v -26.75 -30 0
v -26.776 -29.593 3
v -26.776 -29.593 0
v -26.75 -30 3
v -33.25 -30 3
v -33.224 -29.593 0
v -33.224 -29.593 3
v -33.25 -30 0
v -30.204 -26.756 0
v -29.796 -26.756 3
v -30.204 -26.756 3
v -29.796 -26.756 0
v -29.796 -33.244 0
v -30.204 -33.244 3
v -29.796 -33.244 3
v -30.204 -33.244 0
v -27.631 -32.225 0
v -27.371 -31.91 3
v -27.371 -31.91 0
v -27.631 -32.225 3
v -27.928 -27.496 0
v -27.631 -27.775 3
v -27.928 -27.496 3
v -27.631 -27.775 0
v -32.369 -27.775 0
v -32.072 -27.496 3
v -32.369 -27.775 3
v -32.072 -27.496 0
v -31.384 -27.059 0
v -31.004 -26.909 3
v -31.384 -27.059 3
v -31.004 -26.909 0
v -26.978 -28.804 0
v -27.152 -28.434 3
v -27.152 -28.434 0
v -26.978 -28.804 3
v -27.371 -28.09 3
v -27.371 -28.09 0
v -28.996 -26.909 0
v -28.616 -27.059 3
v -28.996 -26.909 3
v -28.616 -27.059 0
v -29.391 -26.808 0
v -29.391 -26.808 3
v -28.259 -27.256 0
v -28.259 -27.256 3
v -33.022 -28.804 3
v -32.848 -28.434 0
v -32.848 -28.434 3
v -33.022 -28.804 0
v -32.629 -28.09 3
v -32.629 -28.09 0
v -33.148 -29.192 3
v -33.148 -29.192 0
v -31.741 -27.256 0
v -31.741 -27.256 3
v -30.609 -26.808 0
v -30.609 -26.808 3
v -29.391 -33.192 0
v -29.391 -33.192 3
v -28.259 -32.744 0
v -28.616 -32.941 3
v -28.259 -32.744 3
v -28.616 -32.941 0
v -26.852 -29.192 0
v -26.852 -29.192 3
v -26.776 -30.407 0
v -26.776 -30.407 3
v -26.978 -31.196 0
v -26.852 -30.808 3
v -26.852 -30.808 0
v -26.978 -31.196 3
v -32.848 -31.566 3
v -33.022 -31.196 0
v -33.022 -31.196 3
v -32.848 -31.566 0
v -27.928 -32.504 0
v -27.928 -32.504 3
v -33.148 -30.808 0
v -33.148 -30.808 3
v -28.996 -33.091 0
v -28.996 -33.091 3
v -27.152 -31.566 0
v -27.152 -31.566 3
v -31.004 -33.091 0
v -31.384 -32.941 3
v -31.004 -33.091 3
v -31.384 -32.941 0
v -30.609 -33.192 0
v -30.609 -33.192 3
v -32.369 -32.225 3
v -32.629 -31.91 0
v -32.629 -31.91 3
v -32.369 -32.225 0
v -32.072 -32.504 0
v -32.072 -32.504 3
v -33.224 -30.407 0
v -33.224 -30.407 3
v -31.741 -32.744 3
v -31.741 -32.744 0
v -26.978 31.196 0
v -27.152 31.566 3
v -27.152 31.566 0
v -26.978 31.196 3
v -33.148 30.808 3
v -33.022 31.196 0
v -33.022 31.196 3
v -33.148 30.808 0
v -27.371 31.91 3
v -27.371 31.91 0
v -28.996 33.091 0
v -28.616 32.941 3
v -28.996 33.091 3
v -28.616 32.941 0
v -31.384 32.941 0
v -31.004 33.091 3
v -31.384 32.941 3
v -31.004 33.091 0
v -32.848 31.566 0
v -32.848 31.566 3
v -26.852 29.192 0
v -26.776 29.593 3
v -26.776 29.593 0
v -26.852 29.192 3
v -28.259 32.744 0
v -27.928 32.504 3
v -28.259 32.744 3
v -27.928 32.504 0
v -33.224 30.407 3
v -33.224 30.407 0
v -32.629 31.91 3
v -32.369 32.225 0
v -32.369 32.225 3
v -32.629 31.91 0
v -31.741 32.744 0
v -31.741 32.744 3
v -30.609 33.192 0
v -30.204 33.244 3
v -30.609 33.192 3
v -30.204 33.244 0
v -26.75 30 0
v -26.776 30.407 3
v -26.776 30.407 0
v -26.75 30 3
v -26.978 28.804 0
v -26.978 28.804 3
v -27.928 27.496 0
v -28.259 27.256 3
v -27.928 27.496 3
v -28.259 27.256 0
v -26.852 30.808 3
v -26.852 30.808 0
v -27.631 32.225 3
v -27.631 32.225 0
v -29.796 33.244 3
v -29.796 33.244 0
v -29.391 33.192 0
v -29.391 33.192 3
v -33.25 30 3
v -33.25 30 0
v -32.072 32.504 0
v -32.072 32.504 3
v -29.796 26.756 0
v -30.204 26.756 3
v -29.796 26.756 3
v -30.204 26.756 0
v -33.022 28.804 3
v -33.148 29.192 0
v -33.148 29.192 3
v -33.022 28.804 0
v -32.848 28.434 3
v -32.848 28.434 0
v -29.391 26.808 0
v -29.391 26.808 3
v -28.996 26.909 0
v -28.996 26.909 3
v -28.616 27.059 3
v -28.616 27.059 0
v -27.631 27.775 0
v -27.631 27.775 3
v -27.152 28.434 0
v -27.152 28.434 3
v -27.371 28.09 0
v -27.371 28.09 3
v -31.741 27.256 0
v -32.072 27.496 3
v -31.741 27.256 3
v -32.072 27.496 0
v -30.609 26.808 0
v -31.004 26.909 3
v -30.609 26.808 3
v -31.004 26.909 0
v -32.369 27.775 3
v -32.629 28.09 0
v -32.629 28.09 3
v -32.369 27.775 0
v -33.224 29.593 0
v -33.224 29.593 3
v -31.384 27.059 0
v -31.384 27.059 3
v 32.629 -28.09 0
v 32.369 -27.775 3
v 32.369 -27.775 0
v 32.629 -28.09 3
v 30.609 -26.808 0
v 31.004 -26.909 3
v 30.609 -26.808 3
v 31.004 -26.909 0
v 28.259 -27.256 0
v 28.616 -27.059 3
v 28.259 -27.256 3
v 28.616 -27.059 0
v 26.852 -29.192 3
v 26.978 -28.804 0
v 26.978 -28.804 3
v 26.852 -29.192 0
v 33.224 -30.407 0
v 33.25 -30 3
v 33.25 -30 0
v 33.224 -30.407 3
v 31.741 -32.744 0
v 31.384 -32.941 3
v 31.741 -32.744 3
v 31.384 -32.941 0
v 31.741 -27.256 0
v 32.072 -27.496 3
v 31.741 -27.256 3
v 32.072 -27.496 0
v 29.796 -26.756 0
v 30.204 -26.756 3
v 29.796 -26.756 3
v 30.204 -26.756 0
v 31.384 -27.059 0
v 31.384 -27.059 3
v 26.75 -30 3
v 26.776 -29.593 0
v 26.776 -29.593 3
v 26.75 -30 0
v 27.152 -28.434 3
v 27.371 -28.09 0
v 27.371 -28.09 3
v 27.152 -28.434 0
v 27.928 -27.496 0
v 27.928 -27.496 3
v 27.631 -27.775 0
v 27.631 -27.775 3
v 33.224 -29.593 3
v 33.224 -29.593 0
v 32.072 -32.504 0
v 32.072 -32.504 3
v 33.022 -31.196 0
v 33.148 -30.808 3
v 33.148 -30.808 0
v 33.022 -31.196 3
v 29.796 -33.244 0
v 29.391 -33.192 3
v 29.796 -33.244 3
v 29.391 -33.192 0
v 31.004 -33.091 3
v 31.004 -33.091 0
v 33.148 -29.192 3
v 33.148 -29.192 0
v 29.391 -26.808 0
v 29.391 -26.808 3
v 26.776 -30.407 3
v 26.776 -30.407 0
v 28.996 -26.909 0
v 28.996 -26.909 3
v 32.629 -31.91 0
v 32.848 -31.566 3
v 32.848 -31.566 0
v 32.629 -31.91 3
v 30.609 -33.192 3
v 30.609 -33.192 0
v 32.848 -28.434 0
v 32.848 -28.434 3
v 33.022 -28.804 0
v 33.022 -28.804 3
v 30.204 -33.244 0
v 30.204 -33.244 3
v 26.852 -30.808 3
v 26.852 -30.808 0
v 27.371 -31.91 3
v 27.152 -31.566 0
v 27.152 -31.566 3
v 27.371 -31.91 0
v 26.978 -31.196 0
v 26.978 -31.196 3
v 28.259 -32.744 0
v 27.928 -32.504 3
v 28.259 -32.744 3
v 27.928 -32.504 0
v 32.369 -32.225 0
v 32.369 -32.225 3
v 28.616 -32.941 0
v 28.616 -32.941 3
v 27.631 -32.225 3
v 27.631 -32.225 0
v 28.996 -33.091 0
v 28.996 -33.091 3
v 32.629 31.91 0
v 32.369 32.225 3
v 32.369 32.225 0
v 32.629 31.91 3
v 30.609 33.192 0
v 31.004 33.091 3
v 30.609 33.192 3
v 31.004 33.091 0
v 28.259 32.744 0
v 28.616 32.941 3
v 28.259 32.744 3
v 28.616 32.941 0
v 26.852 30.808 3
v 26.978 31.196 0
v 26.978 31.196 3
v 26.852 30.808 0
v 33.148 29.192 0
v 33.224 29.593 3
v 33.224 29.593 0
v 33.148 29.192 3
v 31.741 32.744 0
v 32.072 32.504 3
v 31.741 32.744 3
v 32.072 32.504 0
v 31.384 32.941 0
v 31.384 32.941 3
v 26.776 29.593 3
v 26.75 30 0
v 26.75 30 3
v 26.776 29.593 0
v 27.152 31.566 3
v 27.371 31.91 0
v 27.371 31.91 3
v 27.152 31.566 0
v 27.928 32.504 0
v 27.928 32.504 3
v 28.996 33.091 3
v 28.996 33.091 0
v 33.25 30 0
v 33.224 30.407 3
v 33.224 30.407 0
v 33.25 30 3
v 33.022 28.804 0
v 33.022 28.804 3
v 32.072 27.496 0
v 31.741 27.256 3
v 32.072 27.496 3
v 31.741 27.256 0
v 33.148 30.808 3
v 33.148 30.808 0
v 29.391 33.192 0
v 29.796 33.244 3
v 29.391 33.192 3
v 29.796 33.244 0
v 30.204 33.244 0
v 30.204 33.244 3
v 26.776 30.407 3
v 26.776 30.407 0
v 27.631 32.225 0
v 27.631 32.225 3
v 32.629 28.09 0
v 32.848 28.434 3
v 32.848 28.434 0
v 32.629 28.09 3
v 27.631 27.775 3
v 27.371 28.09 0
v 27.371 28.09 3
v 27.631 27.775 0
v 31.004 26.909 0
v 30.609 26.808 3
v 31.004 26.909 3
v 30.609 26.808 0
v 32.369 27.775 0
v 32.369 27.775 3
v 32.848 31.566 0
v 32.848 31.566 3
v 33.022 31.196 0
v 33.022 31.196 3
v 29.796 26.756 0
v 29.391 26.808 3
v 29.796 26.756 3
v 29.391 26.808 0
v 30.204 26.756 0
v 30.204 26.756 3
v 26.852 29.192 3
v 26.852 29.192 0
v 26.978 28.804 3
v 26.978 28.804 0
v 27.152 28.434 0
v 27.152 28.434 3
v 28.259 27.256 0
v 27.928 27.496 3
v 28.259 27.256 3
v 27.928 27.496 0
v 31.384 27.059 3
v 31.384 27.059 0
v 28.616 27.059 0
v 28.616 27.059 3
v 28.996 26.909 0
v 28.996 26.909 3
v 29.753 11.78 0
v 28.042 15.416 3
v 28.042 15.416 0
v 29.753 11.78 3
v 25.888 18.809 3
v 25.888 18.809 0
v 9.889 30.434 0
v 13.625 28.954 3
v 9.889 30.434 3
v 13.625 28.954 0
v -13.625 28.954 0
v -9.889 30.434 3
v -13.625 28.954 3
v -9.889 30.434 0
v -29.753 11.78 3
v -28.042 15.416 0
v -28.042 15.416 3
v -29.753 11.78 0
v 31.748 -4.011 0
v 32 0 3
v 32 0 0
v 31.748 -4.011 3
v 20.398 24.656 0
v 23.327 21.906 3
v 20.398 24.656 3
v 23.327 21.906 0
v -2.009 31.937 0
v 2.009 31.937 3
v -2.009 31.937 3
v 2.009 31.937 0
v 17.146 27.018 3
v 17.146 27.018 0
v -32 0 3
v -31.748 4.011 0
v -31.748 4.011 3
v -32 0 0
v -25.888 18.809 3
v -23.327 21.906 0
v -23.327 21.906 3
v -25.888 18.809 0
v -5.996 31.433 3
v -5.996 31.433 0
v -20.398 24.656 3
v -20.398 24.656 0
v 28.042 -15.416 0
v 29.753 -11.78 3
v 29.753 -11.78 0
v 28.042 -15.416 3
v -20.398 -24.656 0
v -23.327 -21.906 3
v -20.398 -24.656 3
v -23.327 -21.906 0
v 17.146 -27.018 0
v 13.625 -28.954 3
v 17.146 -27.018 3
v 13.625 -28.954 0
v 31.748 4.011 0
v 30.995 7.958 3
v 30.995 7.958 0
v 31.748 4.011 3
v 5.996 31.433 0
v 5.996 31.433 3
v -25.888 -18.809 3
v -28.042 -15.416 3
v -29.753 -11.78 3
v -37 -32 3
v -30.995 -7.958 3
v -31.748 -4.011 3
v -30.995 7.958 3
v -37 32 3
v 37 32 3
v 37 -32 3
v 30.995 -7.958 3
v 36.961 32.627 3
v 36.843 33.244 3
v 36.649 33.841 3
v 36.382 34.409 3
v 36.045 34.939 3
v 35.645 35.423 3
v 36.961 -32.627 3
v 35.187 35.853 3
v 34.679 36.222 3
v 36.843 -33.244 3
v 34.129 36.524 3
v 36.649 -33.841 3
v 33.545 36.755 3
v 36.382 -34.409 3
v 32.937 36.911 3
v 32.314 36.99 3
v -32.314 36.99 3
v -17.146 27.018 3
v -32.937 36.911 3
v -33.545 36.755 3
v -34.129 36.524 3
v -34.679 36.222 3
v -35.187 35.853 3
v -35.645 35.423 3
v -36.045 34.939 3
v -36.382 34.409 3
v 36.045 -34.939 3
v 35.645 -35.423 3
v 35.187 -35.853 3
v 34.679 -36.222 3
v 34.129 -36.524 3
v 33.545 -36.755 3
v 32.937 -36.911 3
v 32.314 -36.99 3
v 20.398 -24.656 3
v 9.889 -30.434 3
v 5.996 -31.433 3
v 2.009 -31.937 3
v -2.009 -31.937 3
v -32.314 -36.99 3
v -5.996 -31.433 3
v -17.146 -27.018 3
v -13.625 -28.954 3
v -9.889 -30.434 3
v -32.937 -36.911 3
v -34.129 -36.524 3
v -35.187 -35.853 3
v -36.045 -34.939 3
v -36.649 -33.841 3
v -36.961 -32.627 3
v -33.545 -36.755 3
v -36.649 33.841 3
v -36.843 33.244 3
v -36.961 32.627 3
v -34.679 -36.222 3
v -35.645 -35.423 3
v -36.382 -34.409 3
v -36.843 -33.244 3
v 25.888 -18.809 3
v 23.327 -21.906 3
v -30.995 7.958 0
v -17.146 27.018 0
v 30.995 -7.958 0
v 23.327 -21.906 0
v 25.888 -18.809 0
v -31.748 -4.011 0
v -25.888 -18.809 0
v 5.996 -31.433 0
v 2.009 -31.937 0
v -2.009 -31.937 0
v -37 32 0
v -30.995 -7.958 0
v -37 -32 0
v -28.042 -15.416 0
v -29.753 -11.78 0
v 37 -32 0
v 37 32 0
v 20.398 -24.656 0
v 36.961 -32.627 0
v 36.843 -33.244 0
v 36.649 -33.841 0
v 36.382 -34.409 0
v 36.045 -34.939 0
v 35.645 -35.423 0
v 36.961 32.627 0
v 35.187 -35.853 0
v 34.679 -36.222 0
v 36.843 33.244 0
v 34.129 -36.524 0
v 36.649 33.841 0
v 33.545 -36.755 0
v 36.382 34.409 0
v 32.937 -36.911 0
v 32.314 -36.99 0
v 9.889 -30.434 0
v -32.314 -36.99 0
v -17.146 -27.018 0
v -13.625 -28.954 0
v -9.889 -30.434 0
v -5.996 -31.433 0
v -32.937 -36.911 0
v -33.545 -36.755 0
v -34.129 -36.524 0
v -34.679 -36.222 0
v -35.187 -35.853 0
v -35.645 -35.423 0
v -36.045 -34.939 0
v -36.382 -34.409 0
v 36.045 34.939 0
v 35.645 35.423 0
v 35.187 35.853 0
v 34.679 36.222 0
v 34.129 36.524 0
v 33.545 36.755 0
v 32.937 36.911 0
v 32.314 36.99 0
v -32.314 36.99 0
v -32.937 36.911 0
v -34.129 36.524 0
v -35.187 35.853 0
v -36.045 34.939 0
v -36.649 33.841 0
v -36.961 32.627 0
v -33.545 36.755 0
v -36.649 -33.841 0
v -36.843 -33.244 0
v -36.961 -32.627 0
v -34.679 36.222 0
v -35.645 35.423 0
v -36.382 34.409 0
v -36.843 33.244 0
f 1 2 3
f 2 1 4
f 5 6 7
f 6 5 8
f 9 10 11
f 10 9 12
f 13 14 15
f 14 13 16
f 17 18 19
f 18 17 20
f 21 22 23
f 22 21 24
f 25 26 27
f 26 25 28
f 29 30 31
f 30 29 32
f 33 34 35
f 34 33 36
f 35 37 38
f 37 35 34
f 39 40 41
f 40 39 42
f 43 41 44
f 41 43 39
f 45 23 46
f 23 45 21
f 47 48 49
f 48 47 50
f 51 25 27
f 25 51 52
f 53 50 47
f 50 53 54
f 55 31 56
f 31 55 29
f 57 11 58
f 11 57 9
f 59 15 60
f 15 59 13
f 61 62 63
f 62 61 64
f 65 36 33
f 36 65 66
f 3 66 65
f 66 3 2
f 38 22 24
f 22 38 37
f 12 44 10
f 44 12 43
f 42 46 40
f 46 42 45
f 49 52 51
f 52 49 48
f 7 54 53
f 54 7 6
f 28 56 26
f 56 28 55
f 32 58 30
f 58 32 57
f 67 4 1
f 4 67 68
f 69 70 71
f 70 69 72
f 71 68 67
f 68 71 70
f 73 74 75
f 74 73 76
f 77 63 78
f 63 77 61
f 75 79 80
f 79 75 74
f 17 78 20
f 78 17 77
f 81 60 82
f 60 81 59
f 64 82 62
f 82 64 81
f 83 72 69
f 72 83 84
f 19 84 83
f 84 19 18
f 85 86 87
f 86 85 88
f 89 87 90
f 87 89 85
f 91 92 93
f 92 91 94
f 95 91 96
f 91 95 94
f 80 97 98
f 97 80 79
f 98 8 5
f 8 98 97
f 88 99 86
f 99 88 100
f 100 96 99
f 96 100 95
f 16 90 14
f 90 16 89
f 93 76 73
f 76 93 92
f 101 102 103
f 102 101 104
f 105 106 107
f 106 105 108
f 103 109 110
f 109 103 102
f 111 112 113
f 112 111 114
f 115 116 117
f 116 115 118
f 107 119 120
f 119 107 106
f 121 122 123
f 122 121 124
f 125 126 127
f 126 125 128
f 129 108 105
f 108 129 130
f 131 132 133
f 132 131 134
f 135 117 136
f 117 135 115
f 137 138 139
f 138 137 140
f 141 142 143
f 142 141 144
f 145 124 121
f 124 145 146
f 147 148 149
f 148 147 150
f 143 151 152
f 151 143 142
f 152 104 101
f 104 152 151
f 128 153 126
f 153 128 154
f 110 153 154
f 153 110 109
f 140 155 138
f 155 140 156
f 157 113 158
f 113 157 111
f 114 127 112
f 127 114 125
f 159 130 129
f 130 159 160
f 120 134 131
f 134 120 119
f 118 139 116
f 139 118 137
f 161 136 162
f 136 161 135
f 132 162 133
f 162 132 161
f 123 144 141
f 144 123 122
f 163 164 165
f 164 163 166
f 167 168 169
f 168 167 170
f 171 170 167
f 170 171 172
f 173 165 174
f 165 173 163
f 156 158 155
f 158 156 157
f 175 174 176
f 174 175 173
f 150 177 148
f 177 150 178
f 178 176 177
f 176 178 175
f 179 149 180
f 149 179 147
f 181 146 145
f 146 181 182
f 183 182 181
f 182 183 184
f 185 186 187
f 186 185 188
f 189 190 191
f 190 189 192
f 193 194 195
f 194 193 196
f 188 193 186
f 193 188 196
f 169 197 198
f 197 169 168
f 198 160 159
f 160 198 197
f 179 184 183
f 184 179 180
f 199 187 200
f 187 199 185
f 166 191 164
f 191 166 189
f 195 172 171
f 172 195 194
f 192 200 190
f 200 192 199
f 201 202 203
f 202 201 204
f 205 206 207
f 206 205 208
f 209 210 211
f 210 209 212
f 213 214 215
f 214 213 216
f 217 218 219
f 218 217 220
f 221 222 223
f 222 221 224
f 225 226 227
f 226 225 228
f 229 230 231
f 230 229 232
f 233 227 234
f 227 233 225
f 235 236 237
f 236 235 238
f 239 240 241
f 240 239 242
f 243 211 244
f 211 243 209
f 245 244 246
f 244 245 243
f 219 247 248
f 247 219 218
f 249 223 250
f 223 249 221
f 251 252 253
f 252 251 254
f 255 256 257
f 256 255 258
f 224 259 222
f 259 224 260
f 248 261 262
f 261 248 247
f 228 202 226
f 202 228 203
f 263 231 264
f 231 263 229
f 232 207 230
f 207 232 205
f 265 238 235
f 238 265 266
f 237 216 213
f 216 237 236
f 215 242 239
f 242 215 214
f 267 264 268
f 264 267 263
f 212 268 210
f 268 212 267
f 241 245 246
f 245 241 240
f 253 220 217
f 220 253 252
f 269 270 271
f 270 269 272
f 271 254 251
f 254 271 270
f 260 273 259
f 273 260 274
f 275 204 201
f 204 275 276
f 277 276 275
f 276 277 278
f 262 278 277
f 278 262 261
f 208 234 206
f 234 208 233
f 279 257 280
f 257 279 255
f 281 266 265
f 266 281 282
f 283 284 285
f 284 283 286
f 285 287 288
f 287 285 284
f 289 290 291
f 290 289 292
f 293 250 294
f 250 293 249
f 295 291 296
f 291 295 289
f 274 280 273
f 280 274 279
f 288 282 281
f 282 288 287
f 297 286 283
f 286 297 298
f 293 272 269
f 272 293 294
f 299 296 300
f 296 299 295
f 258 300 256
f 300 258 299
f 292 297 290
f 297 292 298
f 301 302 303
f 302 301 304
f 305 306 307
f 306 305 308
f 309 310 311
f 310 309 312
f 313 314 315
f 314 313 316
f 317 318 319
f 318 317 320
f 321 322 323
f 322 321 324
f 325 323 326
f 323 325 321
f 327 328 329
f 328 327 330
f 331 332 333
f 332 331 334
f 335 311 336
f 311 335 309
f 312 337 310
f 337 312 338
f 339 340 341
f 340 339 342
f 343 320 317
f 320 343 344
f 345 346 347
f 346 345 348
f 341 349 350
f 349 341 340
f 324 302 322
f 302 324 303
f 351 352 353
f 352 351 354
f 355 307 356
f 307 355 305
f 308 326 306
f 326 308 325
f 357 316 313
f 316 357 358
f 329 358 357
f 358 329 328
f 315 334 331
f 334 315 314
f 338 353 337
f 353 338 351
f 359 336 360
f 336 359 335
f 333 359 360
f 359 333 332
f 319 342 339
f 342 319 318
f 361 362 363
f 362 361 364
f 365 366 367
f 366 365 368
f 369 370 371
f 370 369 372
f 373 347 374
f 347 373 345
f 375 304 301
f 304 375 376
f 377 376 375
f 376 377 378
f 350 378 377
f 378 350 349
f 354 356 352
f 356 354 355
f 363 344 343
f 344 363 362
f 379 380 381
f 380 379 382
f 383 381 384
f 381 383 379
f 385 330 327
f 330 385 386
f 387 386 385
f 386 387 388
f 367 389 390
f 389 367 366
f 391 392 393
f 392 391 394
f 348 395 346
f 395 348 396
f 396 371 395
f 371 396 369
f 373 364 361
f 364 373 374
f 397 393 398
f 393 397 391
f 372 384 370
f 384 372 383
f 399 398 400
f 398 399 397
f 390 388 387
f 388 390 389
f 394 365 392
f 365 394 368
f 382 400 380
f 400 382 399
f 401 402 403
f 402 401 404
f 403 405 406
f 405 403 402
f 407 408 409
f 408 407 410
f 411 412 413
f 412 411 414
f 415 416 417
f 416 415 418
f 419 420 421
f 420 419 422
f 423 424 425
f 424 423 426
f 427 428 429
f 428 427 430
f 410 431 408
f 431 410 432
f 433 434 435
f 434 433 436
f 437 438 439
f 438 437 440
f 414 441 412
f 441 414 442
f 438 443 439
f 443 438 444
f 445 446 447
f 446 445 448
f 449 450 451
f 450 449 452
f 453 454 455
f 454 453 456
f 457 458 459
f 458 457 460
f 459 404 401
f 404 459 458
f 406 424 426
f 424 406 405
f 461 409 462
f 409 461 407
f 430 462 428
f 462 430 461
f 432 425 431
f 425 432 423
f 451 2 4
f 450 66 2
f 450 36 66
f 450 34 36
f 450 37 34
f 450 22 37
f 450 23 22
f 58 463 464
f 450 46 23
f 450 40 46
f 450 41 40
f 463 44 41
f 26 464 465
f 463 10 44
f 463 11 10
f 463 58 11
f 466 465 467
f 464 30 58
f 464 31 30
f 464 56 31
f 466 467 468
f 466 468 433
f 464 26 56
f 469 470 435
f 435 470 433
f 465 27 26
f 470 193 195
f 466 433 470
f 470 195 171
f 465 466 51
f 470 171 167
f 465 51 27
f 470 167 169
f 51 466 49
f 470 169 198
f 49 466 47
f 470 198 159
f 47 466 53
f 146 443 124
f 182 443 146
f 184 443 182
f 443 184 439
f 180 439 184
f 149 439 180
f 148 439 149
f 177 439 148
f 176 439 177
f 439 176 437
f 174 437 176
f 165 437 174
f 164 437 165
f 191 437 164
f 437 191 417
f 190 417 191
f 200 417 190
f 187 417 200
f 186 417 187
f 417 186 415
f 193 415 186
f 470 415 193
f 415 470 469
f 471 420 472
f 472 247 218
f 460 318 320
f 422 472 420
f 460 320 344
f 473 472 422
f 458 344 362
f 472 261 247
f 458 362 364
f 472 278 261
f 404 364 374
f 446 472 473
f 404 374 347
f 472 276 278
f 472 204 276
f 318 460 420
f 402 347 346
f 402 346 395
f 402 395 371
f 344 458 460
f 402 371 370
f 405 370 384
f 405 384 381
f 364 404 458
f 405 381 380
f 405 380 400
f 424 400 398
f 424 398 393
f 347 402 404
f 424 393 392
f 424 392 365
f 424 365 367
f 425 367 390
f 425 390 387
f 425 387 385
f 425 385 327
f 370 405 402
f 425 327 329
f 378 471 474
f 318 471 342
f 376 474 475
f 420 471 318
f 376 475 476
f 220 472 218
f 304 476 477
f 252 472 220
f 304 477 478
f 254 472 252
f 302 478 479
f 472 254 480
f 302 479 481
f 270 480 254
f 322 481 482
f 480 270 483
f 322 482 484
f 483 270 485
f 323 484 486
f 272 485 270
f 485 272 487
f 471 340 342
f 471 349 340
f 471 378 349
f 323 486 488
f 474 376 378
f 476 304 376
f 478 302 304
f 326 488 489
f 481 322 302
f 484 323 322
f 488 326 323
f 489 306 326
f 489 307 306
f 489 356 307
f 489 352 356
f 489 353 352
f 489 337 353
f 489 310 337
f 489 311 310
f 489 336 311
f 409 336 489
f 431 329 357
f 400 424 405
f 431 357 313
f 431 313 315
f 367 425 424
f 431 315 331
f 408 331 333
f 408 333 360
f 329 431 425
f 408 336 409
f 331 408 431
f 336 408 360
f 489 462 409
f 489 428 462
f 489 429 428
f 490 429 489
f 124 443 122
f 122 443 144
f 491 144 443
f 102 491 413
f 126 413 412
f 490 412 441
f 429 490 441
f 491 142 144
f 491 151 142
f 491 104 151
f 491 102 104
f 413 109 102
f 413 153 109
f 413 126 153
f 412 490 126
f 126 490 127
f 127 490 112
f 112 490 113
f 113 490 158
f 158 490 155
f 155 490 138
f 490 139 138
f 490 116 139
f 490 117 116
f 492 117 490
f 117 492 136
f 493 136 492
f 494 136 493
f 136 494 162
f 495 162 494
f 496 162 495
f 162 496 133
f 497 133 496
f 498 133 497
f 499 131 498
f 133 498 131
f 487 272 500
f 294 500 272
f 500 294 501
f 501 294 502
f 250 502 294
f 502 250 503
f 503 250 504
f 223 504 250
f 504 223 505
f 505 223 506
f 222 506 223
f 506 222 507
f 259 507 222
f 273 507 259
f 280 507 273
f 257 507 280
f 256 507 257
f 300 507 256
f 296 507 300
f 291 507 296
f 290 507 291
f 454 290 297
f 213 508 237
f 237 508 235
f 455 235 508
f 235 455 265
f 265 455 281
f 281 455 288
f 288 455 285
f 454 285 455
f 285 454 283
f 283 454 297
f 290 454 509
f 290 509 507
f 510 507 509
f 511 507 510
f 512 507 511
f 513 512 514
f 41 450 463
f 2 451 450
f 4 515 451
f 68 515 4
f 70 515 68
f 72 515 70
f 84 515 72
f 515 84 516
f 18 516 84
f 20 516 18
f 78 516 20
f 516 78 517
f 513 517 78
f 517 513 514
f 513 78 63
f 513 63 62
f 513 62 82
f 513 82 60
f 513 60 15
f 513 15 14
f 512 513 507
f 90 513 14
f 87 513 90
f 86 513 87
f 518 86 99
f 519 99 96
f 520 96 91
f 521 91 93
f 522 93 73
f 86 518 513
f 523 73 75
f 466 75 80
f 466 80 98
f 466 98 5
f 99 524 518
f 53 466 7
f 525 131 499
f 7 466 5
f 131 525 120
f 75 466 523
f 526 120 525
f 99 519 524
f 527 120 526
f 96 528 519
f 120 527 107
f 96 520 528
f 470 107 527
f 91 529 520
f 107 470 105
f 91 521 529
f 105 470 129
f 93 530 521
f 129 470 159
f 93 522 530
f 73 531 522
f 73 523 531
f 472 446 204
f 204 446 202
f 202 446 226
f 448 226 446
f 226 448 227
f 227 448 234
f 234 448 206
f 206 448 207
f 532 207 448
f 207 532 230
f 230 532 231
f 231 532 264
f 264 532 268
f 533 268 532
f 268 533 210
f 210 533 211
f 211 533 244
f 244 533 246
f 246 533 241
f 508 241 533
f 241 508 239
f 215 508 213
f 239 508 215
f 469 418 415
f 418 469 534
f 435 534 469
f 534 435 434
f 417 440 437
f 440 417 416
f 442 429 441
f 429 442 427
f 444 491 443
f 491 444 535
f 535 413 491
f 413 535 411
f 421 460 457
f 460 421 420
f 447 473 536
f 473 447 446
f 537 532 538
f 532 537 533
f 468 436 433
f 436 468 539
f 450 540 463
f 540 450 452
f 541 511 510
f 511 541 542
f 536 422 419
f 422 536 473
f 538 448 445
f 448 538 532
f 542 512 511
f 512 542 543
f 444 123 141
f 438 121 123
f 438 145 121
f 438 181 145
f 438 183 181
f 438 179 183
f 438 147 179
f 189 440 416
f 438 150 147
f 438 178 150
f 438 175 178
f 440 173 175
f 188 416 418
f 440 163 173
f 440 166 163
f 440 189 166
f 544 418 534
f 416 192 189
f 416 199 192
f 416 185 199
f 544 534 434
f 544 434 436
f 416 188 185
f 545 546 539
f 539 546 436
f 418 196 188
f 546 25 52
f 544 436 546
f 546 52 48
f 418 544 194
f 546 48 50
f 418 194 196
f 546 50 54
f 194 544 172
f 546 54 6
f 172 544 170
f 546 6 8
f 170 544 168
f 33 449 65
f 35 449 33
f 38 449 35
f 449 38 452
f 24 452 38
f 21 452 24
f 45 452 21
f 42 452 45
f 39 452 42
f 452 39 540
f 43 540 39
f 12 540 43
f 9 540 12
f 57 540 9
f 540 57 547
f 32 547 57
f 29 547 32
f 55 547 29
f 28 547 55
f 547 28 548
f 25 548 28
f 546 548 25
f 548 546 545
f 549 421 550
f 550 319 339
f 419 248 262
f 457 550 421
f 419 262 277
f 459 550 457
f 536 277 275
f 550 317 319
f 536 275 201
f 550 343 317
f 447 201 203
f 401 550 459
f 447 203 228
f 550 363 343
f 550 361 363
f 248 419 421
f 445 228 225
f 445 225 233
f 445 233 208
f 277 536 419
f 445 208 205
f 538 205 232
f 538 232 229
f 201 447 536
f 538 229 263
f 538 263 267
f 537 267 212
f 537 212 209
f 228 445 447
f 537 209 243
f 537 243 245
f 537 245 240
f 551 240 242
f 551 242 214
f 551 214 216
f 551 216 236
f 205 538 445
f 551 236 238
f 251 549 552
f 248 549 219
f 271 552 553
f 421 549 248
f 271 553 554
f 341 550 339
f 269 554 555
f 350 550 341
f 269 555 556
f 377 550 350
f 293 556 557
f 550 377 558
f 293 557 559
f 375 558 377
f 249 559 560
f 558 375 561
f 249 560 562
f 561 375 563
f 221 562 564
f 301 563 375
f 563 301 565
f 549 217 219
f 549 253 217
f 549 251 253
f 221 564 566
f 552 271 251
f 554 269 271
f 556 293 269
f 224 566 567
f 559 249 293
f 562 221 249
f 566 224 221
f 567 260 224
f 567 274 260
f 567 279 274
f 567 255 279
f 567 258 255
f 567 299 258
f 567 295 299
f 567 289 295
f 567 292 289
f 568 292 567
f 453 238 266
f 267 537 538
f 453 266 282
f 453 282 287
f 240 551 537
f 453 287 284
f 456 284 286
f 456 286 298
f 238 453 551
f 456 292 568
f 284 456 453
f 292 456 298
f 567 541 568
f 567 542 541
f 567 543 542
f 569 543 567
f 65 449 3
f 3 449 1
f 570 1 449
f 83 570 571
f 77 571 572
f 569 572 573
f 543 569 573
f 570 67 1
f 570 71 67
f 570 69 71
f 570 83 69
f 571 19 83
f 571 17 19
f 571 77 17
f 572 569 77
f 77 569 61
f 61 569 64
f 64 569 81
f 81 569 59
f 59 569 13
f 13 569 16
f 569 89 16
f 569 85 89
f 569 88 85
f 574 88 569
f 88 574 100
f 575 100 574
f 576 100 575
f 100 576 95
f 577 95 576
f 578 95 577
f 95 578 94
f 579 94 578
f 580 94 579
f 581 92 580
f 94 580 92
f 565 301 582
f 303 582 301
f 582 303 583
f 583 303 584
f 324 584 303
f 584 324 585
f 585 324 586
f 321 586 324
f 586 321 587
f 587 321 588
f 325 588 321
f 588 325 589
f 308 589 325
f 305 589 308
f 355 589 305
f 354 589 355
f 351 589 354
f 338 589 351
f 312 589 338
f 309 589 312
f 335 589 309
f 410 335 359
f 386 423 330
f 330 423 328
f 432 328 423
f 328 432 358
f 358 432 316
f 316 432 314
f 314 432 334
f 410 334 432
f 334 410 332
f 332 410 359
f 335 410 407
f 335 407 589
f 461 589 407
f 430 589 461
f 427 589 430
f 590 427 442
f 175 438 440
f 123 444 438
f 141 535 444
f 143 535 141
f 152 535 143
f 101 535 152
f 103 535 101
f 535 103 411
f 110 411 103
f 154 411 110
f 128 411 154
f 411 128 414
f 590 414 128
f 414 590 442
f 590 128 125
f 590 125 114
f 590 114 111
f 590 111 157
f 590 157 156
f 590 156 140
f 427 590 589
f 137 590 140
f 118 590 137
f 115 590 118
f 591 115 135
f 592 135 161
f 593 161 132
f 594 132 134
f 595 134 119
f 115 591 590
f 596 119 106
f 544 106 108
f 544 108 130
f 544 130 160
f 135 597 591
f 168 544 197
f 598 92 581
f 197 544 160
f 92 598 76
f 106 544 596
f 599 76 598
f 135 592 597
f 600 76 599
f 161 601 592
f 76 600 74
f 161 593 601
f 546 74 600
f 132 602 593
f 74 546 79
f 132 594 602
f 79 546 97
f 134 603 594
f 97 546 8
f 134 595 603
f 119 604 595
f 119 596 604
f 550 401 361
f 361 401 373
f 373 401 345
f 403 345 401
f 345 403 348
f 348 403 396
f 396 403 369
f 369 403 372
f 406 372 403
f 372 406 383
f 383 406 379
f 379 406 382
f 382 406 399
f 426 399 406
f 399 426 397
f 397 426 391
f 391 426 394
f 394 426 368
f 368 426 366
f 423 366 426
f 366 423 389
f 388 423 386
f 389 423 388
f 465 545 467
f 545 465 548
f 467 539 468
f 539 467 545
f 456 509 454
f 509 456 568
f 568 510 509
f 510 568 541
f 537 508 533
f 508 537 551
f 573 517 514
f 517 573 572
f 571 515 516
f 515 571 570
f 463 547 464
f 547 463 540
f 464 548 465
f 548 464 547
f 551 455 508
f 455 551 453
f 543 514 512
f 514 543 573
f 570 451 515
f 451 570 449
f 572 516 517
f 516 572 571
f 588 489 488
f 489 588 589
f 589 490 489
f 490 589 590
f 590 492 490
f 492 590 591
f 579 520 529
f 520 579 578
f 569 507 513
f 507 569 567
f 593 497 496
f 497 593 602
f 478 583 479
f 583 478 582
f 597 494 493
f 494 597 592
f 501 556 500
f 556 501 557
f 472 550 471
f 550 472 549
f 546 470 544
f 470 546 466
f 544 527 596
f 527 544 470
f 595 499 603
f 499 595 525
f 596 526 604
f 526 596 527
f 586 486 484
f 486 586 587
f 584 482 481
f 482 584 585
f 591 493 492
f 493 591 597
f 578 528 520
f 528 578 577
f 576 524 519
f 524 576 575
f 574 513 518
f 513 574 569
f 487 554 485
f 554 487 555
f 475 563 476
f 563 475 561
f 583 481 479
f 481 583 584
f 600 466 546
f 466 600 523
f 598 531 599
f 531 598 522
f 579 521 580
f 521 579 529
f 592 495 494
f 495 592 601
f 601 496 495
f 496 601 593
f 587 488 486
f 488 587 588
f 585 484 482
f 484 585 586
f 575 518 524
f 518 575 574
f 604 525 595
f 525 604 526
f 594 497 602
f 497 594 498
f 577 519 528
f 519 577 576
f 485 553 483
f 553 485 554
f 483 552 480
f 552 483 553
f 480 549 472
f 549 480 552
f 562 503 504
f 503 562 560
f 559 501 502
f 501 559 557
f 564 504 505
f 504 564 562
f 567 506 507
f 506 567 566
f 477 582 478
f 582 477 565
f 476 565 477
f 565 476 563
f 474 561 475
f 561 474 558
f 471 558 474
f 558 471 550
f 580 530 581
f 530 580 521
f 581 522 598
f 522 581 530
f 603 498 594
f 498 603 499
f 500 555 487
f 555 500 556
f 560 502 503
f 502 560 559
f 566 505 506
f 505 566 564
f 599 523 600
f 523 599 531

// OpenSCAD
$fn = 50;


difference() {
	union() {
		hull() {
			translate(v = [-32.0000000000, 32.0000000000, 0]) {
				cylinder(h = 3, r = 5);
			}
			translate(v = [32.0000000000, 32.0000000000, 0]) {
				cylinder(h = 3, r = 5);
			}
			translate(v = [-32.0000000000, -32.0000000000, 0]) {
				cylinder(h = 3, r = 5);
			}
			translate(v = [32.0000000000, -32.0000000000, 0]) {
				cylinder(h = 3, r = 5);
			}
		}
	}
	union() {
		#translate(v = [-30.0000000000, -30.0000000000, -100.0000000000]) {
			cylinder(h = 200, r = 3.2500000000);
		}
		#translate(v = [-30.0000000000, 30.0000000000, -100.0000000000]) {
			cylinder(h = 200, r = 3.2500000000);
		}
		#translate(v = [30.0000000000, -30.0000000000, -100.0000000000]) {
			cylinder(h = 200, r = 3.2500000000);
		}
		#translate(v = [30.0000000000, 30.0000000000, -100.0000000000]) {
			cylinder(h = 200, r = 3.2500000000);
		}
		#cylinder(h = 3, r = 32.0000000000);
	}
}
